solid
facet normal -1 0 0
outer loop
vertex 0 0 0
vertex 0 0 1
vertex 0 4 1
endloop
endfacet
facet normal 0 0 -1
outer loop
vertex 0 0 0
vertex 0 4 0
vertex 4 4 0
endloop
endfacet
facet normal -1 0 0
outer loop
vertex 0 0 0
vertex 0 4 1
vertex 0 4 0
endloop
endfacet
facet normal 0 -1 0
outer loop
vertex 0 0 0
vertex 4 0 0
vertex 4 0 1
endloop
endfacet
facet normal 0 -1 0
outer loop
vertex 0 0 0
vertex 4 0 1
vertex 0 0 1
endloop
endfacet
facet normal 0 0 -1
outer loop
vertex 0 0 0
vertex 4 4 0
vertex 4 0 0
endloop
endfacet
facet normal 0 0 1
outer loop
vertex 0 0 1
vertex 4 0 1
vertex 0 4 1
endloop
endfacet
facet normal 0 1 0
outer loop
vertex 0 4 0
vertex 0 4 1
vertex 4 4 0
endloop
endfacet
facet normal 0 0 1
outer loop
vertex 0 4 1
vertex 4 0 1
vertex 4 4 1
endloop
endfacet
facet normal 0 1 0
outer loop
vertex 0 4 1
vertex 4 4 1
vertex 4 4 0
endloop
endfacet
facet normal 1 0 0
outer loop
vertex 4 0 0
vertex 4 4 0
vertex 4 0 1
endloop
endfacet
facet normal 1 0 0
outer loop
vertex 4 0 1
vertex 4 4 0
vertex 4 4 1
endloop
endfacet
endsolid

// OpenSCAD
/* Warning, this is a very basic generator with a lot of approximation 
input data : [VQFN, 6NX, 4x4x1.0mm, 20, , C, C04-00402C]
generated by com.zoubworld.electronics.cad.model3d.Basic
Date : Sun Feb 15 10:50:48 CET 2026
*/

//body
color("black")
translate([0,0,0])
cube([4.0,4.0,1.0], center=false);
